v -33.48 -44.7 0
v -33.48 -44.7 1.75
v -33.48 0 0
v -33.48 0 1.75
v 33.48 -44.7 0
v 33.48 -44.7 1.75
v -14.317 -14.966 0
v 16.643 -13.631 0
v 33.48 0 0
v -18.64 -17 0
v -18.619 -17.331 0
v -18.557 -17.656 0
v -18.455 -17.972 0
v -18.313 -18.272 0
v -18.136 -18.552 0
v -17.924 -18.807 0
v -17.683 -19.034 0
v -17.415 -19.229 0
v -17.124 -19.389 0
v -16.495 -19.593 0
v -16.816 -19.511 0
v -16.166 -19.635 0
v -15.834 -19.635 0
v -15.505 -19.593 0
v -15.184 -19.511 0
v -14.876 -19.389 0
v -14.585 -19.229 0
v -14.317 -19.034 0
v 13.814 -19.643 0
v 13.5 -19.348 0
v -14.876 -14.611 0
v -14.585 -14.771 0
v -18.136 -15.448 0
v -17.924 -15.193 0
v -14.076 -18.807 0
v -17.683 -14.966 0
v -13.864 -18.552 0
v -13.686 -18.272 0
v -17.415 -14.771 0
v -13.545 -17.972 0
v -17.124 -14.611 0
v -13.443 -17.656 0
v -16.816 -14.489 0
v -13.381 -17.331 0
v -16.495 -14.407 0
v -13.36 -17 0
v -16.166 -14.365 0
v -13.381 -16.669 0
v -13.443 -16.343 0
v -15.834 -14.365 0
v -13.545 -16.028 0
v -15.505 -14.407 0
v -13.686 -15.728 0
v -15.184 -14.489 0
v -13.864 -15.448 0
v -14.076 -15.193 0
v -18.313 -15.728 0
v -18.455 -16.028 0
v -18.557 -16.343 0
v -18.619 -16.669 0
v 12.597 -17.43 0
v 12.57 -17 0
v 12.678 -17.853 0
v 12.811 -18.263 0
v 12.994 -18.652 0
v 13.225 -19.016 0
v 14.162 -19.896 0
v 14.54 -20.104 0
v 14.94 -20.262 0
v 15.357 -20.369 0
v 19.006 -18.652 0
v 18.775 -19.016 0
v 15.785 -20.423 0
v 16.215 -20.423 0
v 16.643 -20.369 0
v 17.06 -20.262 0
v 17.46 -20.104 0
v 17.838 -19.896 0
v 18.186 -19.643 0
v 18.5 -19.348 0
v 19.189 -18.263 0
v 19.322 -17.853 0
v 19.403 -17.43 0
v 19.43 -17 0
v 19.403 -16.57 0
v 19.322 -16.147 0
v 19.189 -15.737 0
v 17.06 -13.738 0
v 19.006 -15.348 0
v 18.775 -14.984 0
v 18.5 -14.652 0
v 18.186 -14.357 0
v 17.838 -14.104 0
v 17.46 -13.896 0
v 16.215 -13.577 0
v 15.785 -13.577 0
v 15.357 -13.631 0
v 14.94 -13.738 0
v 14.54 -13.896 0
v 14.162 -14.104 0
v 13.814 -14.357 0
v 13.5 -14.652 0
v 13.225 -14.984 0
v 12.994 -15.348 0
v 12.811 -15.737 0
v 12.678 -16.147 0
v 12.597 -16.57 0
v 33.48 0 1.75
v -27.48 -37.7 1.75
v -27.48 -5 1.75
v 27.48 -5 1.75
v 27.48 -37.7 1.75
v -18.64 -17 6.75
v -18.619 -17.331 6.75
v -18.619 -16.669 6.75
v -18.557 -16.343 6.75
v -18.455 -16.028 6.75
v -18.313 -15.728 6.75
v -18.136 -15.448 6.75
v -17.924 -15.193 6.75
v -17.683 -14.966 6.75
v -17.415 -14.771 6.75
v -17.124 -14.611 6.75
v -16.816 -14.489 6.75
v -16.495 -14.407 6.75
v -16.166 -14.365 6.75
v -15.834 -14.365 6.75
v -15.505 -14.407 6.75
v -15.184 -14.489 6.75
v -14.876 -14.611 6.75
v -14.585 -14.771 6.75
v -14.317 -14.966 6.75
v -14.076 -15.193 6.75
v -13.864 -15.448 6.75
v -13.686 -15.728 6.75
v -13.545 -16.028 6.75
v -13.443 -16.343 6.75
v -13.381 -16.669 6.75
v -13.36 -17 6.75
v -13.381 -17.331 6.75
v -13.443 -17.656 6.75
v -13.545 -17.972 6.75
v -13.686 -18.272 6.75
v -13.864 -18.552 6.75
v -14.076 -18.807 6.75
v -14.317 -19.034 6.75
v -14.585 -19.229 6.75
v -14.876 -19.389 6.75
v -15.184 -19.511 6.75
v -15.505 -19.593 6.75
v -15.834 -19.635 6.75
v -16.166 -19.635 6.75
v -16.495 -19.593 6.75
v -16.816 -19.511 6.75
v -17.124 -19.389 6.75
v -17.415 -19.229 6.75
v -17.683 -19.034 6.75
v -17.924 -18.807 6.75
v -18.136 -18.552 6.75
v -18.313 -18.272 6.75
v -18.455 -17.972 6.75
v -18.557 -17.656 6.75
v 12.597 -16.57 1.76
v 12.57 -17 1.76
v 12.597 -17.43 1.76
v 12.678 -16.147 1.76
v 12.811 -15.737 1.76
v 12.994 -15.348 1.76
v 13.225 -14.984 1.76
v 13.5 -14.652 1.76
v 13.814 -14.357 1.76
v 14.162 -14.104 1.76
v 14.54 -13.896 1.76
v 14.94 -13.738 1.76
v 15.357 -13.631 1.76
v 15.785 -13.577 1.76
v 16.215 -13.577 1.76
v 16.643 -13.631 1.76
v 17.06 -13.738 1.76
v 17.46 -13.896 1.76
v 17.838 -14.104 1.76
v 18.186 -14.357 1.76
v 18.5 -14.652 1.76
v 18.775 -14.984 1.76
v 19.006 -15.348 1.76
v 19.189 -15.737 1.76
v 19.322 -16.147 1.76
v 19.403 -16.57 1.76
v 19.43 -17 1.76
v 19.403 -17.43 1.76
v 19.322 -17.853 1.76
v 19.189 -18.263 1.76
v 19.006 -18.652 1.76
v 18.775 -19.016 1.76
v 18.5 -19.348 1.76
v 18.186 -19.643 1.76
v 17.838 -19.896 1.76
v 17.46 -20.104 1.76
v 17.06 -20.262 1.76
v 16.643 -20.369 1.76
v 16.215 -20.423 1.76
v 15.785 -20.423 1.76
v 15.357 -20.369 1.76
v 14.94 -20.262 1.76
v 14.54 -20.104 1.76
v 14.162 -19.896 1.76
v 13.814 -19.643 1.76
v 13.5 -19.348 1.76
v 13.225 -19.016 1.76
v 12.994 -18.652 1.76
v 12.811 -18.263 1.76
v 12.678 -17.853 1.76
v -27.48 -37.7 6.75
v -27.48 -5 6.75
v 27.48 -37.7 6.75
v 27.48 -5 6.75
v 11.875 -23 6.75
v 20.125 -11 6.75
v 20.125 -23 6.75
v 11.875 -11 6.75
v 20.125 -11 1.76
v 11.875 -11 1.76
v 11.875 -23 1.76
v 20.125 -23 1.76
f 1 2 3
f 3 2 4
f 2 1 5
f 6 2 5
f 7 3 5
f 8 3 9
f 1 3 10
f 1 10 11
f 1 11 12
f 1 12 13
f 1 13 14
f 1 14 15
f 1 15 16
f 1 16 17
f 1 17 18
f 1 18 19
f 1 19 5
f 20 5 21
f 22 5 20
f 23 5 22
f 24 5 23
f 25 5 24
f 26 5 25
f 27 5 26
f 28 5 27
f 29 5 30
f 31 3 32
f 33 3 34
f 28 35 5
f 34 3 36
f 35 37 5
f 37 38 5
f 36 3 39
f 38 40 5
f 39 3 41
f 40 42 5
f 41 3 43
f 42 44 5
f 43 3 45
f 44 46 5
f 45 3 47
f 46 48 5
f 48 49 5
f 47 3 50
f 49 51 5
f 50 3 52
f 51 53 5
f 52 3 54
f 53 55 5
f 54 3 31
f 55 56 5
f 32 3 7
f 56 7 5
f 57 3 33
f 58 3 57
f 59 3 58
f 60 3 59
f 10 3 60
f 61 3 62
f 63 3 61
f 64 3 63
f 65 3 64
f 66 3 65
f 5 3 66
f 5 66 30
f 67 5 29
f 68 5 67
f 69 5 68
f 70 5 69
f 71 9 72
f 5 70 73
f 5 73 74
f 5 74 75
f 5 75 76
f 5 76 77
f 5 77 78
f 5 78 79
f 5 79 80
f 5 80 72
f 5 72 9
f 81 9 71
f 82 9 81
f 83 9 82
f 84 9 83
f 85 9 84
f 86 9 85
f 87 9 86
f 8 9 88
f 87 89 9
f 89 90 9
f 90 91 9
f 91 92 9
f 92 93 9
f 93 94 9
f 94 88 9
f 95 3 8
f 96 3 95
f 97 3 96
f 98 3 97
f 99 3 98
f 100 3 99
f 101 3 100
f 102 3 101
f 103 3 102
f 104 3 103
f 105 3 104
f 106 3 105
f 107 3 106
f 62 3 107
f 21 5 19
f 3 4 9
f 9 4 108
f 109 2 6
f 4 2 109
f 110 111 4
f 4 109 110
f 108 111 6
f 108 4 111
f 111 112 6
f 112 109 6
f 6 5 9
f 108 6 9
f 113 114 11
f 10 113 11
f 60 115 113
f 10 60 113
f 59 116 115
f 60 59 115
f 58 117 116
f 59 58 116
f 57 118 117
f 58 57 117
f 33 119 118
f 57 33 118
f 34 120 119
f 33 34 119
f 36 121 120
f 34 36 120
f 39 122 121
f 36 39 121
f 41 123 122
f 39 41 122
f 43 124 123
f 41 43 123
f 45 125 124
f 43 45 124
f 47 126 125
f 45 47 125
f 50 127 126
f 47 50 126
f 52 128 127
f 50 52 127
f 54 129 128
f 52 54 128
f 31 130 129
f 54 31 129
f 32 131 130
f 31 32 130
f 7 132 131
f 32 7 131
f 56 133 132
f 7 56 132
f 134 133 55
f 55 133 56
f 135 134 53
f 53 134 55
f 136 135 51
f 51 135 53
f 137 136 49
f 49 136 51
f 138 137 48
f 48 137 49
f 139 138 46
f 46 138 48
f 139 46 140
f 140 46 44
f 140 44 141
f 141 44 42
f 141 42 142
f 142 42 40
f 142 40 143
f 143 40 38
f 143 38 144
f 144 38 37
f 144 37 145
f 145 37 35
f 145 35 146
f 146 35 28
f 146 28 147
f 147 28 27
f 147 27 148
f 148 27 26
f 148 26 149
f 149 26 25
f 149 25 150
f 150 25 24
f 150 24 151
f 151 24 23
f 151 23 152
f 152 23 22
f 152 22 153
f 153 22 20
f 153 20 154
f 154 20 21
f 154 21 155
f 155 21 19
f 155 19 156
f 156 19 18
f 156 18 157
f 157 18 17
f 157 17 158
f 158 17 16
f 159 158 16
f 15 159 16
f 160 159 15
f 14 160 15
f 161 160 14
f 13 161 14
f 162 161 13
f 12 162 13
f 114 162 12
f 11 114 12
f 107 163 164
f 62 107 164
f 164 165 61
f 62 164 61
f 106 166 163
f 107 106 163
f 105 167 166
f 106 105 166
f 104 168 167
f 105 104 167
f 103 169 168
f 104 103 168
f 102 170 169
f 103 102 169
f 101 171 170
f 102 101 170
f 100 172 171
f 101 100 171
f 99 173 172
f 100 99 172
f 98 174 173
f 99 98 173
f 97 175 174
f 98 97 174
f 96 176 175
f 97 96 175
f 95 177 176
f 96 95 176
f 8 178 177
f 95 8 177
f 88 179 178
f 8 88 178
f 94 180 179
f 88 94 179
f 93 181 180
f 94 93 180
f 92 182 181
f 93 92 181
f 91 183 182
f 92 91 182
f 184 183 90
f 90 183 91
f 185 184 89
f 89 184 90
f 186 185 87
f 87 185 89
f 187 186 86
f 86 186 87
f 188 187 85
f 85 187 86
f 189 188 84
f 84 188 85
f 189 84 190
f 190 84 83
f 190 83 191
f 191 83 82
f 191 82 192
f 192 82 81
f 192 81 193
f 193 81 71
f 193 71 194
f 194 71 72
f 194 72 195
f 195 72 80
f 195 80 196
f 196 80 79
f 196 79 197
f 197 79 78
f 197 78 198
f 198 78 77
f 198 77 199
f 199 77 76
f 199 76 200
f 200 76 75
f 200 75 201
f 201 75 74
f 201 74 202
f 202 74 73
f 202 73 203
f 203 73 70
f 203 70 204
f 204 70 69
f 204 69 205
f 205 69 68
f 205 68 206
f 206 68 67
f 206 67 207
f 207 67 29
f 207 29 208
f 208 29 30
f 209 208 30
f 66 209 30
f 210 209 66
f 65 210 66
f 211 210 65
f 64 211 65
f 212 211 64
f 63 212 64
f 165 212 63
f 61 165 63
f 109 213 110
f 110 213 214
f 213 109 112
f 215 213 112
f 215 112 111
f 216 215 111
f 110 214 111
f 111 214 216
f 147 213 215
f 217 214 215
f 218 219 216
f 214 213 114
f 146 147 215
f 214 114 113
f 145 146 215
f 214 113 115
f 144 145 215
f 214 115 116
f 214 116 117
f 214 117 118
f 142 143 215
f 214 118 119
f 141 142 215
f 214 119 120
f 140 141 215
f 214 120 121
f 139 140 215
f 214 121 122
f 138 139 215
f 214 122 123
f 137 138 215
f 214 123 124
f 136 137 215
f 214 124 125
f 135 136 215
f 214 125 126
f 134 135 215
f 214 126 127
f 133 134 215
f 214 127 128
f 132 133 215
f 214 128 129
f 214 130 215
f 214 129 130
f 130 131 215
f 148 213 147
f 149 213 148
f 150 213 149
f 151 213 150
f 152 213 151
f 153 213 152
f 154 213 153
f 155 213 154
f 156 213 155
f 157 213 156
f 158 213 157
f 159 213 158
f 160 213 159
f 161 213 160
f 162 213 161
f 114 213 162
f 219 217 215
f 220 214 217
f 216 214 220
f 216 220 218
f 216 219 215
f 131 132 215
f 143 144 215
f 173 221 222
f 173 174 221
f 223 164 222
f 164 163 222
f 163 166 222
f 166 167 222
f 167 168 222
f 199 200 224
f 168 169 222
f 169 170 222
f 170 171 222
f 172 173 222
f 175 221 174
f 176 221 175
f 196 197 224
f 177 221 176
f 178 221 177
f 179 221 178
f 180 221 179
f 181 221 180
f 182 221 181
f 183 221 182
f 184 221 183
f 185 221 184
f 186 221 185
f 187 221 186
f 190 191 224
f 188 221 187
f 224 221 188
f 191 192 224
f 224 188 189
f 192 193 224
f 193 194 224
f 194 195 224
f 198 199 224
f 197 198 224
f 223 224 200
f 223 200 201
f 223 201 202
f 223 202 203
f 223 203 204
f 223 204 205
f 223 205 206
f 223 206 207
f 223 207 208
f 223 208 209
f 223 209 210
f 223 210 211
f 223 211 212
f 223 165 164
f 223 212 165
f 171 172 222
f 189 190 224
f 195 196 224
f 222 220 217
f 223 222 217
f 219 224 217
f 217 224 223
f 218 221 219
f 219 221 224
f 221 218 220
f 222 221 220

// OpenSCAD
// file: constants.scad
hp = 6;
h_floor = 5;

// back wall
r_usb = 2.64;
r_antenna = 3.43;
t_antenna_hex = 5;
t_antenna_washer = 1.75;
t_back = t_antenna_hex + t_antenna_washer;
hex_diam_max = 12;
hex_diam_min = 8.25;

// breadboard
bb_w = 54.96;
bb_d = 83.14;
bb_h = 9.5;
bb_foot_w = 4.64;
bb_foot_d = 2.2;
bb_left_foot_offset = 14.556;
bb_bottom_foot_offset = 22.586;

bb_to_back = 83.66;
bb_bottom_to_wires_top = 32.7;

d_bb_bottom_support = hp;
lid_inset = 4;

h_lid_edge = 3;

back_inset = 5;
h_back_edge = t_back - back_inset;
dz_back_antenna = 12;
dy_back_antenna = 20;

w_base = bb_w + 2*hp;
d_base = hp + bb_d + bb_to_back + back_inset;
h_base = h_floor + bb_bottom_to_wires_top + lid_inset;

h_outer = h_base + h_lid_edge;
w_outer = w_base;
d_outer = d_base;

h_antiwarp = 0.25;
hp_antiwarp = 5;

d_backspace = d_base - hp - bb_d - d_bb_bottom_support;
// main file
include <constants.scad>;

dx = 16;
dy = 12;

difference() {
	union() {

		// floor
		translate([0, -h_outer/2, h_back_edge/2])
		cube([w_outer, h_outer, h_back_edge], center=true);

		// inset
		translate([0, -bb_bottom_to_wires_top/2 - h_floor, h_back_edge + back_inset/2])
		cube([bb_w, bb_bottom_to_wires_top, back_inset], center=true);
	}

	// antenna
	translate([dx, -h_floor - dy, 0])
	union() {
		translate([0, 0, t_antenna_hex/2 + t_antenna_washer + 0.01])
		cube([hex_diam_min, hex_diam_max, t_antenna_hex], center=true);

		cylinder(r=r_antenna, h=100, $fn=50);
	}

	// usb
	translate([-dx, -h_floor - dy, 0])
	cylinder(r=r_usb, h=100, $fn=50);
}
